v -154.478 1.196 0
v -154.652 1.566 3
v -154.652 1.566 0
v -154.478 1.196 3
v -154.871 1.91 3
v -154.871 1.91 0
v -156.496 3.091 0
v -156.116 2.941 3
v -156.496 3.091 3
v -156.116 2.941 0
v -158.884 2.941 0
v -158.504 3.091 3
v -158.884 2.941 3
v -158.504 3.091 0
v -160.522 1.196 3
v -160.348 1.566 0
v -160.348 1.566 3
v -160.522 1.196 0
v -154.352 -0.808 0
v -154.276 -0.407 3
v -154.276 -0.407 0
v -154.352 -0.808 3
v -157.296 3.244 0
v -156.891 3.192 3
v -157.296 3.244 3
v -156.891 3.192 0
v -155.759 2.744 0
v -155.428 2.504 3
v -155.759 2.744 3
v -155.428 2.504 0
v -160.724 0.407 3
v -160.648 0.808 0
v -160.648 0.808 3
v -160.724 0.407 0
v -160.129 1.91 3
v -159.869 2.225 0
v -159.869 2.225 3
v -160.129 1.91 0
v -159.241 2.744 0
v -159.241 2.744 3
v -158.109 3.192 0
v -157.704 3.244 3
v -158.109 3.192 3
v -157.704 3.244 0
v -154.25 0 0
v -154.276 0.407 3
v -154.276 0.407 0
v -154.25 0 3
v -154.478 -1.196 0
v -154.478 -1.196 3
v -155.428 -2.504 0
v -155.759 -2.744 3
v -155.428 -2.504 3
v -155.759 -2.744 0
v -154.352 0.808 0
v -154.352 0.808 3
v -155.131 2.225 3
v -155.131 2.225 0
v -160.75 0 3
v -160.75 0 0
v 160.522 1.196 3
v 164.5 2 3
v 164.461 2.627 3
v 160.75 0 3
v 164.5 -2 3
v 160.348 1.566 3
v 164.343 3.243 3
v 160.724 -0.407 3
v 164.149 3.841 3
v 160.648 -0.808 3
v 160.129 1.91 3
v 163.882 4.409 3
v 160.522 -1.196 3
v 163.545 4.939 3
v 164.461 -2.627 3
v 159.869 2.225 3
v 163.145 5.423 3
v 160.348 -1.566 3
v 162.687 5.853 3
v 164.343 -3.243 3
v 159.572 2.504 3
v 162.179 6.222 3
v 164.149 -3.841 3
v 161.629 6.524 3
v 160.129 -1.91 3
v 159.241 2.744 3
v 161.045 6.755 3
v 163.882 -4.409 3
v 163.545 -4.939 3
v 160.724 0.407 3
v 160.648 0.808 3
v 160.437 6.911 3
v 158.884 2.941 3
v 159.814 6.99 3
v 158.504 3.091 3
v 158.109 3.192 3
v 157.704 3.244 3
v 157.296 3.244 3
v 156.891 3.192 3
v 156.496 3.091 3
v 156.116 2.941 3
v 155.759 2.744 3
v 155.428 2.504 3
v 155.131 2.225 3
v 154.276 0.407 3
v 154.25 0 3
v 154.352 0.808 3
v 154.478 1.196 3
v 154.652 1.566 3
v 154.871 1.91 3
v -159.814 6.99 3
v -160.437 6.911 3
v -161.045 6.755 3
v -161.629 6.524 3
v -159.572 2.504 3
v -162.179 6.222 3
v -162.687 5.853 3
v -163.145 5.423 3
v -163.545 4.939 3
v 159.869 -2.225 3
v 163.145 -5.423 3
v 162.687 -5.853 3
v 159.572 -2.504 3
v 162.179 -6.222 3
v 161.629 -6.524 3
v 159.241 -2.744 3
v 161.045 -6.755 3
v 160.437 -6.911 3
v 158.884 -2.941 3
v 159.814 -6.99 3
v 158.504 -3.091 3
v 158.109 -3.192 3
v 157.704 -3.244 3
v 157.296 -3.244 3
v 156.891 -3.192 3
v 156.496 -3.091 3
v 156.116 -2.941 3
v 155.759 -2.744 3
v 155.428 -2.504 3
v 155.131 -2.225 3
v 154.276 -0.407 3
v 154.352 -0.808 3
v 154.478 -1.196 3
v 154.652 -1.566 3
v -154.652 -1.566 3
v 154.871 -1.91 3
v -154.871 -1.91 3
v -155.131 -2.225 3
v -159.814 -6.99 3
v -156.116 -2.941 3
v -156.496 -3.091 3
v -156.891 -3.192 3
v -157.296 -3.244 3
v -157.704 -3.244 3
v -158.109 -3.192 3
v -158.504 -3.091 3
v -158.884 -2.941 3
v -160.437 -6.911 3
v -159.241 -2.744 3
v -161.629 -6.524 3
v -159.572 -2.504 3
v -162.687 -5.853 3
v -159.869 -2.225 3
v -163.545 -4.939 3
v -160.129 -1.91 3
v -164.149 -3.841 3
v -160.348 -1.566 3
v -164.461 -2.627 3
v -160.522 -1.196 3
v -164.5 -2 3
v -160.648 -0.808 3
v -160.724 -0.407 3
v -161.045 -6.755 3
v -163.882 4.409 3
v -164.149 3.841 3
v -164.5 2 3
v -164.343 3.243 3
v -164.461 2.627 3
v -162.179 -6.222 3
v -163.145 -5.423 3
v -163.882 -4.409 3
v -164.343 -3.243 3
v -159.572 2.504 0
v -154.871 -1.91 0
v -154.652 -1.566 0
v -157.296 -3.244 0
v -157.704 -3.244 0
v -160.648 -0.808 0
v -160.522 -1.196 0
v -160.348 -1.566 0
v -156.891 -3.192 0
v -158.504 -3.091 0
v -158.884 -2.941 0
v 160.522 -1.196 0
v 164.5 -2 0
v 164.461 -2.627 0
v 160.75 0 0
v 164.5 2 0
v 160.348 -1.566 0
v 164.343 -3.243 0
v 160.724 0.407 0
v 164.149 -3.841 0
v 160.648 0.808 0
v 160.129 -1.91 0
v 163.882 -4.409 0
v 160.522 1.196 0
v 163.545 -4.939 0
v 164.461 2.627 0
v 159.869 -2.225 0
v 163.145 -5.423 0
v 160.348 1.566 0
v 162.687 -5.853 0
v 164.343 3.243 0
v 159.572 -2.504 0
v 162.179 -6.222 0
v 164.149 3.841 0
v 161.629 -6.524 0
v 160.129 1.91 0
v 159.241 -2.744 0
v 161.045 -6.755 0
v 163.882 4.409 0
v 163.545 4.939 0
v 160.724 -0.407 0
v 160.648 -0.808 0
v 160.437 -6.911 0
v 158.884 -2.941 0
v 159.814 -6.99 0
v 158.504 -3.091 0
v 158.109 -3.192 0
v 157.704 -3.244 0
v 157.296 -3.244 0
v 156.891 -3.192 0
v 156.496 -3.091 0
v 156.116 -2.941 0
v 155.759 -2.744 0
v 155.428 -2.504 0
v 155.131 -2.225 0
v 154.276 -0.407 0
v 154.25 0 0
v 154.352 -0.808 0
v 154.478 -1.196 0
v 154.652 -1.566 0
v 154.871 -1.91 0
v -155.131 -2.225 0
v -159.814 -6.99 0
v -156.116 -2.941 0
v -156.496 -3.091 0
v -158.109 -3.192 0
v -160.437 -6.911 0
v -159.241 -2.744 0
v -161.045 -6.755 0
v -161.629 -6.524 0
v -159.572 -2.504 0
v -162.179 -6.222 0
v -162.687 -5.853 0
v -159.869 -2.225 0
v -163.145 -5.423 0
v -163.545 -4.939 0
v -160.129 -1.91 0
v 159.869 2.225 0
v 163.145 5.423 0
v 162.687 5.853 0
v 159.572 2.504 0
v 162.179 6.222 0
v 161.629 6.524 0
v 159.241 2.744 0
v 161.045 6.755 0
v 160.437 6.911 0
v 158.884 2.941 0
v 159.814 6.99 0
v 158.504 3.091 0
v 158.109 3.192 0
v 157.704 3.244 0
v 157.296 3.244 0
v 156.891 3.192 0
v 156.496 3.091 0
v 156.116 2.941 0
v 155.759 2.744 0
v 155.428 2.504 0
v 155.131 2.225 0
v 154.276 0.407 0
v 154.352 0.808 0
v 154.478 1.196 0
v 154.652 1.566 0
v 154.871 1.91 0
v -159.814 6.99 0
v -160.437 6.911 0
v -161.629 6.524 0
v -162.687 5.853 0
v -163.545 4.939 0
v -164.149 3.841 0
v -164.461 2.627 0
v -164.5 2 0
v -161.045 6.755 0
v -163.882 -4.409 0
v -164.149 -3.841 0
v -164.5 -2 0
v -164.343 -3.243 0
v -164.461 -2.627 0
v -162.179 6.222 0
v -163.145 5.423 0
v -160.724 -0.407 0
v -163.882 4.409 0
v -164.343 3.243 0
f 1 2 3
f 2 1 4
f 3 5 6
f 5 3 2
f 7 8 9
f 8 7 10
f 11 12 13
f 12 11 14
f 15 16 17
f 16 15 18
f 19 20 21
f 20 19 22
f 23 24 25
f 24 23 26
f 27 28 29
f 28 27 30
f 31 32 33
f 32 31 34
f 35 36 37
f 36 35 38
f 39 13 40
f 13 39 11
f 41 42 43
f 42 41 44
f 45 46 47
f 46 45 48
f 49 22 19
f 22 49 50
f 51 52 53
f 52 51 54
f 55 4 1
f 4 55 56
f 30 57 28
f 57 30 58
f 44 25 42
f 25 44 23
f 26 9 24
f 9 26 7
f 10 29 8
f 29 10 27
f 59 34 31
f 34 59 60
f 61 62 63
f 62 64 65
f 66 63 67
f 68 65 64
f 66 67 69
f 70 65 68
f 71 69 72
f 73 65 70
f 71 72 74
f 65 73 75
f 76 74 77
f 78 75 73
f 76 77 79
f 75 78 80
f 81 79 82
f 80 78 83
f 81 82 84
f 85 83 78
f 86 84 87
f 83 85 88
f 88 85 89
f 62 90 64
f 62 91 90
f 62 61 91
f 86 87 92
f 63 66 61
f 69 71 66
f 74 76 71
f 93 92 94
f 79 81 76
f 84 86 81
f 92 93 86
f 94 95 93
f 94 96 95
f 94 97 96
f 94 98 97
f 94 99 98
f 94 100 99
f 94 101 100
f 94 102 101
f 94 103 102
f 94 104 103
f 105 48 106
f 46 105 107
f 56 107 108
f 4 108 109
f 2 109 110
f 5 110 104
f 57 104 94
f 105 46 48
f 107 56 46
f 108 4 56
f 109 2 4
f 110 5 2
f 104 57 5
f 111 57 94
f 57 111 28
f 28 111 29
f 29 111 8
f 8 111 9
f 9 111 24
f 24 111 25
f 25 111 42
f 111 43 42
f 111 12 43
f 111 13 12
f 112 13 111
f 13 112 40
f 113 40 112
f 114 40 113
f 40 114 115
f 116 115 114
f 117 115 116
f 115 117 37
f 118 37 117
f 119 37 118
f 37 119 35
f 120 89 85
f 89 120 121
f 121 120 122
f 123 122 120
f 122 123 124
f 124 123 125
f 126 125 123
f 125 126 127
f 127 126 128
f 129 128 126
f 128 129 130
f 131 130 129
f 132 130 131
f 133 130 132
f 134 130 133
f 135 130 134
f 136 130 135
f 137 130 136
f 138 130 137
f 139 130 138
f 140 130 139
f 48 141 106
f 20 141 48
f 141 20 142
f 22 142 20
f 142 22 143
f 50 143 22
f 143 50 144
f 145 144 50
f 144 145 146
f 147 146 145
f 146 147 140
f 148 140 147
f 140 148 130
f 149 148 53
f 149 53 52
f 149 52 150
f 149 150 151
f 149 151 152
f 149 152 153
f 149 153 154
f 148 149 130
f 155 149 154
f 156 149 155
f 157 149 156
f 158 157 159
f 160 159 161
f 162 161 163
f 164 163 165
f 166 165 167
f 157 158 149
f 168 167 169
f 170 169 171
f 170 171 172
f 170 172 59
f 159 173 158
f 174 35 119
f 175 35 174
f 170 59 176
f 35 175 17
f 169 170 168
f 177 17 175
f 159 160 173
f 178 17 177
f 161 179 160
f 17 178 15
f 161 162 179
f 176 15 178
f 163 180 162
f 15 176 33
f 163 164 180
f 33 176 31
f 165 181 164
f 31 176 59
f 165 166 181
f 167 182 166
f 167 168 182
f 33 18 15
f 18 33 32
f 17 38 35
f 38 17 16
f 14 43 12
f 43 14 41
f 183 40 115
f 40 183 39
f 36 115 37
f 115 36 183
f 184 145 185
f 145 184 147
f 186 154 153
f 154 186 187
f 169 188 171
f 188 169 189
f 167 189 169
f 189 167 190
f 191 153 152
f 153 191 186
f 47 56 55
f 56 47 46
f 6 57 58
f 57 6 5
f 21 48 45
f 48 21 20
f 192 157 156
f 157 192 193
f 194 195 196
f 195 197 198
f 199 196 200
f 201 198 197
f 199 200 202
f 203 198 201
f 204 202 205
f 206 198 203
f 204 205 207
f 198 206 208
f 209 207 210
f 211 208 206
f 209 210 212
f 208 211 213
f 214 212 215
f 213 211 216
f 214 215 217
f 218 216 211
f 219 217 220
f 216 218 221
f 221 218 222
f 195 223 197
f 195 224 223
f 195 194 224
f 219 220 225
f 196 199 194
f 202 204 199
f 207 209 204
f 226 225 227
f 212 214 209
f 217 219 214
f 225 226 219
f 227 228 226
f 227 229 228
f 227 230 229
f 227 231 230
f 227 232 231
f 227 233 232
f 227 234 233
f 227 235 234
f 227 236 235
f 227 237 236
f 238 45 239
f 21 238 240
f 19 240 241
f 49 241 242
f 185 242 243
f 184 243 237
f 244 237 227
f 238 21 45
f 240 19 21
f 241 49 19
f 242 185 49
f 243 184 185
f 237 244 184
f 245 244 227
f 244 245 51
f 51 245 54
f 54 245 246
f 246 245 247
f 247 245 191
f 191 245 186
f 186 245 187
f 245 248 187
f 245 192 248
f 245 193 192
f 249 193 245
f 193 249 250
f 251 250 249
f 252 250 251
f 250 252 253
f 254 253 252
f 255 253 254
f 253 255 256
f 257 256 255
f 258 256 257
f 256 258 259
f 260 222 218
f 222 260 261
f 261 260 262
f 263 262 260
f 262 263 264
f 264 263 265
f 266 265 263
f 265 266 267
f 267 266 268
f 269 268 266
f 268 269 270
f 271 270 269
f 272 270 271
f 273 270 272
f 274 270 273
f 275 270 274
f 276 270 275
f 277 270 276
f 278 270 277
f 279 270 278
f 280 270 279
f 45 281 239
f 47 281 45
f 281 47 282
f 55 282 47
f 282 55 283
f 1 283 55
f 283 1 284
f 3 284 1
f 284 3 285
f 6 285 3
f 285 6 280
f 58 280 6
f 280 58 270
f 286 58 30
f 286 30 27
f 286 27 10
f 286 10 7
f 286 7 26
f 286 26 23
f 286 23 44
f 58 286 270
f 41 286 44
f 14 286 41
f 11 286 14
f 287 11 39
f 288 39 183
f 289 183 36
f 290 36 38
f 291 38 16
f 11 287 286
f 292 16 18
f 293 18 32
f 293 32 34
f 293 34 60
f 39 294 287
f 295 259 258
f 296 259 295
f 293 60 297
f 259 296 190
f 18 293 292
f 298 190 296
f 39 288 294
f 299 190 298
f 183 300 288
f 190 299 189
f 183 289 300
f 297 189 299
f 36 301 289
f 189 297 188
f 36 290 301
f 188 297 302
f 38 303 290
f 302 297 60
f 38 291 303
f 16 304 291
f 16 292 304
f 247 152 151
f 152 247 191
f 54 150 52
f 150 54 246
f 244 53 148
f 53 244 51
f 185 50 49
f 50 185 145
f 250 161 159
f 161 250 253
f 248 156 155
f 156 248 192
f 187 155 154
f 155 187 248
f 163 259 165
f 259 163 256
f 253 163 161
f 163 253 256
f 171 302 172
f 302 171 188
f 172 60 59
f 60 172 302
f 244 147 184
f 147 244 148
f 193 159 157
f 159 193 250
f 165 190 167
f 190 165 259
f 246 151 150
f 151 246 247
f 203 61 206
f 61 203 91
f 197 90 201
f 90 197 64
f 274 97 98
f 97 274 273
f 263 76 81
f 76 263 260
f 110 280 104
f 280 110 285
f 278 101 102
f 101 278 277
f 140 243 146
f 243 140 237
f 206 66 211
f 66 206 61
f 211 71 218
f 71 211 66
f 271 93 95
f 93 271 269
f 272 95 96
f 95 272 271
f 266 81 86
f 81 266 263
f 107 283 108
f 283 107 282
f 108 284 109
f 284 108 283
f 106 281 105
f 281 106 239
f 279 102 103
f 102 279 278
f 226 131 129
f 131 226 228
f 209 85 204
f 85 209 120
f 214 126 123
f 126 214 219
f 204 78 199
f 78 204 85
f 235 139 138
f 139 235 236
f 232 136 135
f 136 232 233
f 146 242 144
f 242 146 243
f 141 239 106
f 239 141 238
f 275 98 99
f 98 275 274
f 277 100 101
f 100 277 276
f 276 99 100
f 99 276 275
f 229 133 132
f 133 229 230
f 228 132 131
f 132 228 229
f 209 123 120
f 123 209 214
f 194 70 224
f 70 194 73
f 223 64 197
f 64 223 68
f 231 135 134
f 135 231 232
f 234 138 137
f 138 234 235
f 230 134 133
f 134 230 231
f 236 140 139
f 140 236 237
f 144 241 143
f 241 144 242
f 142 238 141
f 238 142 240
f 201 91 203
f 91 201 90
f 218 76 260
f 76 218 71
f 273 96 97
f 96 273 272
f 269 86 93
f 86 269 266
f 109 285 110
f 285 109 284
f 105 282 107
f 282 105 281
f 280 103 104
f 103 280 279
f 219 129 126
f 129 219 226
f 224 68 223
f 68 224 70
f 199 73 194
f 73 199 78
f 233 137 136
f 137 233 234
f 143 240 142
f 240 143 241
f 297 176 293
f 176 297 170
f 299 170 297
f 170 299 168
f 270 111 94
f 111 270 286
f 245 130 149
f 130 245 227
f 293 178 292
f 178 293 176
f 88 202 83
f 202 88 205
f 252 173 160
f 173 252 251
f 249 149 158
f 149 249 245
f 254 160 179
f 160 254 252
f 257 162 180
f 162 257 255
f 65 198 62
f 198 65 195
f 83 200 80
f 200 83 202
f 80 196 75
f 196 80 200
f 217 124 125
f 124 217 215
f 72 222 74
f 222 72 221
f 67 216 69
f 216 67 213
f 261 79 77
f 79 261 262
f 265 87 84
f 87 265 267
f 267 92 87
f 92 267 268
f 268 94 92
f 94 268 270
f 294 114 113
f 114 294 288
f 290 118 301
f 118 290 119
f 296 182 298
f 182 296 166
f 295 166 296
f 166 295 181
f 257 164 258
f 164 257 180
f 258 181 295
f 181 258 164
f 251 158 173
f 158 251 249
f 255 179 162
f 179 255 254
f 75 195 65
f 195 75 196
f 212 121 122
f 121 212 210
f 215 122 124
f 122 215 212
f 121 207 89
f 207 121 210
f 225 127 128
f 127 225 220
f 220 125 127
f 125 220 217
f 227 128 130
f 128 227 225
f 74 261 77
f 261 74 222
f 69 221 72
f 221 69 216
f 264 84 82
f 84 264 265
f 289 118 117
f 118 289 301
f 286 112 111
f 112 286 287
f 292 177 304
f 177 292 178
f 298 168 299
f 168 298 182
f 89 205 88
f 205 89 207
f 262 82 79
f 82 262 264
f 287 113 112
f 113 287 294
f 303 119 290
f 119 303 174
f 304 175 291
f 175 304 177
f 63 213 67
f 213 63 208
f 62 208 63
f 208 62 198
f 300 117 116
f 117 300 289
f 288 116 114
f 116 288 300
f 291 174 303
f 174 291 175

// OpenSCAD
$fn = 50;


difference() {
	union() {
		hull() {
			translate(v = [-159.5000000000, 2.0000000000, 0]) {
				cylinder(h = 3, r = 5);
			}
			translate(v = [159.5000000000, 2.0000000000, 0]) {
				cylinder(h = 3, r = 5);
			}
			translate(v = [-159.5000000000, -2.0000000000, 0]) {
				cylinder(h = 3, r = 5);
			}
			translate(v = [159.5000000000, -2.0000000000, 0]) {
				cylinder(h = 3, r = 5);
			}
		}
	}
	union() {
		translate(v = [-157.5000000000, 0.0000000000, 0]) {
			cylinder(h = 3, r = 3.2500000000);
		}
		translate(v = [157.5000000000, 0.0000000000, 0]) {
			cylinder(h = 3, r = 3.2500000000);
		}
		translate(v = [-157.5000000000, 0.0000000000, 0]) {
			cylinder(h = 3, r = 1.8000000000);
		}
		translate(v = [157.5000000000, 0.0000000000, 0]) {
			cylinder(h = 3, r = 1.8000000000);
		}
		translate(v = [-157.5000000000, 0.0000000000, 0]) {
			cylinder(h = 3, r = 1.8000000000);
		}
		translate(v = [157.5000000000, 0.0000000000, 0]) {
			cylinder(h = 3, r = 1.8000000000);
		}
		translate(v = [-157.5000000000, 0.0000000000, 0]) {
			cylinder(h = 3, r = 1.8000000000);
		}
		translate(v = [157.5000000000, 0.0000000000, 0]) {
			cylinder(h = 3, r = 1.8000000000);
		}
	}
}
